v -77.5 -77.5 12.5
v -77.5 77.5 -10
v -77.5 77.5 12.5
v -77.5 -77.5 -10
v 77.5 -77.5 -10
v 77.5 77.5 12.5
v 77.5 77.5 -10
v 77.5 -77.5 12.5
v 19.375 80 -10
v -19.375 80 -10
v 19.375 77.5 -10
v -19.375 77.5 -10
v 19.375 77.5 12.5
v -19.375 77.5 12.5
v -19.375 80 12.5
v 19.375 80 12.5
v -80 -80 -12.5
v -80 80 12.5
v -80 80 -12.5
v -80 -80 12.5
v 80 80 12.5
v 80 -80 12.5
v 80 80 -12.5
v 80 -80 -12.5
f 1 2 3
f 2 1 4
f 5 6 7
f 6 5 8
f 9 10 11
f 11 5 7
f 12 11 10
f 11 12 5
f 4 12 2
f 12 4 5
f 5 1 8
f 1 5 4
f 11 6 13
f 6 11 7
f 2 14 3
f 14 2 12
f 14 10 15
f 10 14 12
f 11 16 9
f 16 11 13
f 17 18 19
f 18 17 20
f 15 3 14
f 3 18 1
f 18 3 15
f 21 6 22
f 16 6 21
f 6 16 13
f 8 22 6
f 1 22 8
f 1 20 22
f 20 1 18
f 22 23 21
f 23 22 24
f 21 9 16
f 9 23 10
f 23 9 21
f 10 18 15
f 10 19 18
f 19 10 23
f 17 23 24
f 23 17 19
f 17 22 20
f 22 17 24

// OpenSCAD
scale = 1;

containerHeight = 25 * scale;
napkinSize = 155 * scale;
slotThickness = napkinSize / 4;
wallThickness = 5 * scale;

difference() {
    cube([napkinSize + wallThickness, napkinSize + wallThickness, containerHeight], center = true);
    translate([0, 0, wallThickness]) {
        cube([napkinSize, napkinSize, containerHeight + wallThickness], center = true);
        translate([0, wallThickness, 0]) {
            cube([slotThickness, napkinSize + wallThickness, containerHeight + wallThickness], center = true);
        }
    }
}
